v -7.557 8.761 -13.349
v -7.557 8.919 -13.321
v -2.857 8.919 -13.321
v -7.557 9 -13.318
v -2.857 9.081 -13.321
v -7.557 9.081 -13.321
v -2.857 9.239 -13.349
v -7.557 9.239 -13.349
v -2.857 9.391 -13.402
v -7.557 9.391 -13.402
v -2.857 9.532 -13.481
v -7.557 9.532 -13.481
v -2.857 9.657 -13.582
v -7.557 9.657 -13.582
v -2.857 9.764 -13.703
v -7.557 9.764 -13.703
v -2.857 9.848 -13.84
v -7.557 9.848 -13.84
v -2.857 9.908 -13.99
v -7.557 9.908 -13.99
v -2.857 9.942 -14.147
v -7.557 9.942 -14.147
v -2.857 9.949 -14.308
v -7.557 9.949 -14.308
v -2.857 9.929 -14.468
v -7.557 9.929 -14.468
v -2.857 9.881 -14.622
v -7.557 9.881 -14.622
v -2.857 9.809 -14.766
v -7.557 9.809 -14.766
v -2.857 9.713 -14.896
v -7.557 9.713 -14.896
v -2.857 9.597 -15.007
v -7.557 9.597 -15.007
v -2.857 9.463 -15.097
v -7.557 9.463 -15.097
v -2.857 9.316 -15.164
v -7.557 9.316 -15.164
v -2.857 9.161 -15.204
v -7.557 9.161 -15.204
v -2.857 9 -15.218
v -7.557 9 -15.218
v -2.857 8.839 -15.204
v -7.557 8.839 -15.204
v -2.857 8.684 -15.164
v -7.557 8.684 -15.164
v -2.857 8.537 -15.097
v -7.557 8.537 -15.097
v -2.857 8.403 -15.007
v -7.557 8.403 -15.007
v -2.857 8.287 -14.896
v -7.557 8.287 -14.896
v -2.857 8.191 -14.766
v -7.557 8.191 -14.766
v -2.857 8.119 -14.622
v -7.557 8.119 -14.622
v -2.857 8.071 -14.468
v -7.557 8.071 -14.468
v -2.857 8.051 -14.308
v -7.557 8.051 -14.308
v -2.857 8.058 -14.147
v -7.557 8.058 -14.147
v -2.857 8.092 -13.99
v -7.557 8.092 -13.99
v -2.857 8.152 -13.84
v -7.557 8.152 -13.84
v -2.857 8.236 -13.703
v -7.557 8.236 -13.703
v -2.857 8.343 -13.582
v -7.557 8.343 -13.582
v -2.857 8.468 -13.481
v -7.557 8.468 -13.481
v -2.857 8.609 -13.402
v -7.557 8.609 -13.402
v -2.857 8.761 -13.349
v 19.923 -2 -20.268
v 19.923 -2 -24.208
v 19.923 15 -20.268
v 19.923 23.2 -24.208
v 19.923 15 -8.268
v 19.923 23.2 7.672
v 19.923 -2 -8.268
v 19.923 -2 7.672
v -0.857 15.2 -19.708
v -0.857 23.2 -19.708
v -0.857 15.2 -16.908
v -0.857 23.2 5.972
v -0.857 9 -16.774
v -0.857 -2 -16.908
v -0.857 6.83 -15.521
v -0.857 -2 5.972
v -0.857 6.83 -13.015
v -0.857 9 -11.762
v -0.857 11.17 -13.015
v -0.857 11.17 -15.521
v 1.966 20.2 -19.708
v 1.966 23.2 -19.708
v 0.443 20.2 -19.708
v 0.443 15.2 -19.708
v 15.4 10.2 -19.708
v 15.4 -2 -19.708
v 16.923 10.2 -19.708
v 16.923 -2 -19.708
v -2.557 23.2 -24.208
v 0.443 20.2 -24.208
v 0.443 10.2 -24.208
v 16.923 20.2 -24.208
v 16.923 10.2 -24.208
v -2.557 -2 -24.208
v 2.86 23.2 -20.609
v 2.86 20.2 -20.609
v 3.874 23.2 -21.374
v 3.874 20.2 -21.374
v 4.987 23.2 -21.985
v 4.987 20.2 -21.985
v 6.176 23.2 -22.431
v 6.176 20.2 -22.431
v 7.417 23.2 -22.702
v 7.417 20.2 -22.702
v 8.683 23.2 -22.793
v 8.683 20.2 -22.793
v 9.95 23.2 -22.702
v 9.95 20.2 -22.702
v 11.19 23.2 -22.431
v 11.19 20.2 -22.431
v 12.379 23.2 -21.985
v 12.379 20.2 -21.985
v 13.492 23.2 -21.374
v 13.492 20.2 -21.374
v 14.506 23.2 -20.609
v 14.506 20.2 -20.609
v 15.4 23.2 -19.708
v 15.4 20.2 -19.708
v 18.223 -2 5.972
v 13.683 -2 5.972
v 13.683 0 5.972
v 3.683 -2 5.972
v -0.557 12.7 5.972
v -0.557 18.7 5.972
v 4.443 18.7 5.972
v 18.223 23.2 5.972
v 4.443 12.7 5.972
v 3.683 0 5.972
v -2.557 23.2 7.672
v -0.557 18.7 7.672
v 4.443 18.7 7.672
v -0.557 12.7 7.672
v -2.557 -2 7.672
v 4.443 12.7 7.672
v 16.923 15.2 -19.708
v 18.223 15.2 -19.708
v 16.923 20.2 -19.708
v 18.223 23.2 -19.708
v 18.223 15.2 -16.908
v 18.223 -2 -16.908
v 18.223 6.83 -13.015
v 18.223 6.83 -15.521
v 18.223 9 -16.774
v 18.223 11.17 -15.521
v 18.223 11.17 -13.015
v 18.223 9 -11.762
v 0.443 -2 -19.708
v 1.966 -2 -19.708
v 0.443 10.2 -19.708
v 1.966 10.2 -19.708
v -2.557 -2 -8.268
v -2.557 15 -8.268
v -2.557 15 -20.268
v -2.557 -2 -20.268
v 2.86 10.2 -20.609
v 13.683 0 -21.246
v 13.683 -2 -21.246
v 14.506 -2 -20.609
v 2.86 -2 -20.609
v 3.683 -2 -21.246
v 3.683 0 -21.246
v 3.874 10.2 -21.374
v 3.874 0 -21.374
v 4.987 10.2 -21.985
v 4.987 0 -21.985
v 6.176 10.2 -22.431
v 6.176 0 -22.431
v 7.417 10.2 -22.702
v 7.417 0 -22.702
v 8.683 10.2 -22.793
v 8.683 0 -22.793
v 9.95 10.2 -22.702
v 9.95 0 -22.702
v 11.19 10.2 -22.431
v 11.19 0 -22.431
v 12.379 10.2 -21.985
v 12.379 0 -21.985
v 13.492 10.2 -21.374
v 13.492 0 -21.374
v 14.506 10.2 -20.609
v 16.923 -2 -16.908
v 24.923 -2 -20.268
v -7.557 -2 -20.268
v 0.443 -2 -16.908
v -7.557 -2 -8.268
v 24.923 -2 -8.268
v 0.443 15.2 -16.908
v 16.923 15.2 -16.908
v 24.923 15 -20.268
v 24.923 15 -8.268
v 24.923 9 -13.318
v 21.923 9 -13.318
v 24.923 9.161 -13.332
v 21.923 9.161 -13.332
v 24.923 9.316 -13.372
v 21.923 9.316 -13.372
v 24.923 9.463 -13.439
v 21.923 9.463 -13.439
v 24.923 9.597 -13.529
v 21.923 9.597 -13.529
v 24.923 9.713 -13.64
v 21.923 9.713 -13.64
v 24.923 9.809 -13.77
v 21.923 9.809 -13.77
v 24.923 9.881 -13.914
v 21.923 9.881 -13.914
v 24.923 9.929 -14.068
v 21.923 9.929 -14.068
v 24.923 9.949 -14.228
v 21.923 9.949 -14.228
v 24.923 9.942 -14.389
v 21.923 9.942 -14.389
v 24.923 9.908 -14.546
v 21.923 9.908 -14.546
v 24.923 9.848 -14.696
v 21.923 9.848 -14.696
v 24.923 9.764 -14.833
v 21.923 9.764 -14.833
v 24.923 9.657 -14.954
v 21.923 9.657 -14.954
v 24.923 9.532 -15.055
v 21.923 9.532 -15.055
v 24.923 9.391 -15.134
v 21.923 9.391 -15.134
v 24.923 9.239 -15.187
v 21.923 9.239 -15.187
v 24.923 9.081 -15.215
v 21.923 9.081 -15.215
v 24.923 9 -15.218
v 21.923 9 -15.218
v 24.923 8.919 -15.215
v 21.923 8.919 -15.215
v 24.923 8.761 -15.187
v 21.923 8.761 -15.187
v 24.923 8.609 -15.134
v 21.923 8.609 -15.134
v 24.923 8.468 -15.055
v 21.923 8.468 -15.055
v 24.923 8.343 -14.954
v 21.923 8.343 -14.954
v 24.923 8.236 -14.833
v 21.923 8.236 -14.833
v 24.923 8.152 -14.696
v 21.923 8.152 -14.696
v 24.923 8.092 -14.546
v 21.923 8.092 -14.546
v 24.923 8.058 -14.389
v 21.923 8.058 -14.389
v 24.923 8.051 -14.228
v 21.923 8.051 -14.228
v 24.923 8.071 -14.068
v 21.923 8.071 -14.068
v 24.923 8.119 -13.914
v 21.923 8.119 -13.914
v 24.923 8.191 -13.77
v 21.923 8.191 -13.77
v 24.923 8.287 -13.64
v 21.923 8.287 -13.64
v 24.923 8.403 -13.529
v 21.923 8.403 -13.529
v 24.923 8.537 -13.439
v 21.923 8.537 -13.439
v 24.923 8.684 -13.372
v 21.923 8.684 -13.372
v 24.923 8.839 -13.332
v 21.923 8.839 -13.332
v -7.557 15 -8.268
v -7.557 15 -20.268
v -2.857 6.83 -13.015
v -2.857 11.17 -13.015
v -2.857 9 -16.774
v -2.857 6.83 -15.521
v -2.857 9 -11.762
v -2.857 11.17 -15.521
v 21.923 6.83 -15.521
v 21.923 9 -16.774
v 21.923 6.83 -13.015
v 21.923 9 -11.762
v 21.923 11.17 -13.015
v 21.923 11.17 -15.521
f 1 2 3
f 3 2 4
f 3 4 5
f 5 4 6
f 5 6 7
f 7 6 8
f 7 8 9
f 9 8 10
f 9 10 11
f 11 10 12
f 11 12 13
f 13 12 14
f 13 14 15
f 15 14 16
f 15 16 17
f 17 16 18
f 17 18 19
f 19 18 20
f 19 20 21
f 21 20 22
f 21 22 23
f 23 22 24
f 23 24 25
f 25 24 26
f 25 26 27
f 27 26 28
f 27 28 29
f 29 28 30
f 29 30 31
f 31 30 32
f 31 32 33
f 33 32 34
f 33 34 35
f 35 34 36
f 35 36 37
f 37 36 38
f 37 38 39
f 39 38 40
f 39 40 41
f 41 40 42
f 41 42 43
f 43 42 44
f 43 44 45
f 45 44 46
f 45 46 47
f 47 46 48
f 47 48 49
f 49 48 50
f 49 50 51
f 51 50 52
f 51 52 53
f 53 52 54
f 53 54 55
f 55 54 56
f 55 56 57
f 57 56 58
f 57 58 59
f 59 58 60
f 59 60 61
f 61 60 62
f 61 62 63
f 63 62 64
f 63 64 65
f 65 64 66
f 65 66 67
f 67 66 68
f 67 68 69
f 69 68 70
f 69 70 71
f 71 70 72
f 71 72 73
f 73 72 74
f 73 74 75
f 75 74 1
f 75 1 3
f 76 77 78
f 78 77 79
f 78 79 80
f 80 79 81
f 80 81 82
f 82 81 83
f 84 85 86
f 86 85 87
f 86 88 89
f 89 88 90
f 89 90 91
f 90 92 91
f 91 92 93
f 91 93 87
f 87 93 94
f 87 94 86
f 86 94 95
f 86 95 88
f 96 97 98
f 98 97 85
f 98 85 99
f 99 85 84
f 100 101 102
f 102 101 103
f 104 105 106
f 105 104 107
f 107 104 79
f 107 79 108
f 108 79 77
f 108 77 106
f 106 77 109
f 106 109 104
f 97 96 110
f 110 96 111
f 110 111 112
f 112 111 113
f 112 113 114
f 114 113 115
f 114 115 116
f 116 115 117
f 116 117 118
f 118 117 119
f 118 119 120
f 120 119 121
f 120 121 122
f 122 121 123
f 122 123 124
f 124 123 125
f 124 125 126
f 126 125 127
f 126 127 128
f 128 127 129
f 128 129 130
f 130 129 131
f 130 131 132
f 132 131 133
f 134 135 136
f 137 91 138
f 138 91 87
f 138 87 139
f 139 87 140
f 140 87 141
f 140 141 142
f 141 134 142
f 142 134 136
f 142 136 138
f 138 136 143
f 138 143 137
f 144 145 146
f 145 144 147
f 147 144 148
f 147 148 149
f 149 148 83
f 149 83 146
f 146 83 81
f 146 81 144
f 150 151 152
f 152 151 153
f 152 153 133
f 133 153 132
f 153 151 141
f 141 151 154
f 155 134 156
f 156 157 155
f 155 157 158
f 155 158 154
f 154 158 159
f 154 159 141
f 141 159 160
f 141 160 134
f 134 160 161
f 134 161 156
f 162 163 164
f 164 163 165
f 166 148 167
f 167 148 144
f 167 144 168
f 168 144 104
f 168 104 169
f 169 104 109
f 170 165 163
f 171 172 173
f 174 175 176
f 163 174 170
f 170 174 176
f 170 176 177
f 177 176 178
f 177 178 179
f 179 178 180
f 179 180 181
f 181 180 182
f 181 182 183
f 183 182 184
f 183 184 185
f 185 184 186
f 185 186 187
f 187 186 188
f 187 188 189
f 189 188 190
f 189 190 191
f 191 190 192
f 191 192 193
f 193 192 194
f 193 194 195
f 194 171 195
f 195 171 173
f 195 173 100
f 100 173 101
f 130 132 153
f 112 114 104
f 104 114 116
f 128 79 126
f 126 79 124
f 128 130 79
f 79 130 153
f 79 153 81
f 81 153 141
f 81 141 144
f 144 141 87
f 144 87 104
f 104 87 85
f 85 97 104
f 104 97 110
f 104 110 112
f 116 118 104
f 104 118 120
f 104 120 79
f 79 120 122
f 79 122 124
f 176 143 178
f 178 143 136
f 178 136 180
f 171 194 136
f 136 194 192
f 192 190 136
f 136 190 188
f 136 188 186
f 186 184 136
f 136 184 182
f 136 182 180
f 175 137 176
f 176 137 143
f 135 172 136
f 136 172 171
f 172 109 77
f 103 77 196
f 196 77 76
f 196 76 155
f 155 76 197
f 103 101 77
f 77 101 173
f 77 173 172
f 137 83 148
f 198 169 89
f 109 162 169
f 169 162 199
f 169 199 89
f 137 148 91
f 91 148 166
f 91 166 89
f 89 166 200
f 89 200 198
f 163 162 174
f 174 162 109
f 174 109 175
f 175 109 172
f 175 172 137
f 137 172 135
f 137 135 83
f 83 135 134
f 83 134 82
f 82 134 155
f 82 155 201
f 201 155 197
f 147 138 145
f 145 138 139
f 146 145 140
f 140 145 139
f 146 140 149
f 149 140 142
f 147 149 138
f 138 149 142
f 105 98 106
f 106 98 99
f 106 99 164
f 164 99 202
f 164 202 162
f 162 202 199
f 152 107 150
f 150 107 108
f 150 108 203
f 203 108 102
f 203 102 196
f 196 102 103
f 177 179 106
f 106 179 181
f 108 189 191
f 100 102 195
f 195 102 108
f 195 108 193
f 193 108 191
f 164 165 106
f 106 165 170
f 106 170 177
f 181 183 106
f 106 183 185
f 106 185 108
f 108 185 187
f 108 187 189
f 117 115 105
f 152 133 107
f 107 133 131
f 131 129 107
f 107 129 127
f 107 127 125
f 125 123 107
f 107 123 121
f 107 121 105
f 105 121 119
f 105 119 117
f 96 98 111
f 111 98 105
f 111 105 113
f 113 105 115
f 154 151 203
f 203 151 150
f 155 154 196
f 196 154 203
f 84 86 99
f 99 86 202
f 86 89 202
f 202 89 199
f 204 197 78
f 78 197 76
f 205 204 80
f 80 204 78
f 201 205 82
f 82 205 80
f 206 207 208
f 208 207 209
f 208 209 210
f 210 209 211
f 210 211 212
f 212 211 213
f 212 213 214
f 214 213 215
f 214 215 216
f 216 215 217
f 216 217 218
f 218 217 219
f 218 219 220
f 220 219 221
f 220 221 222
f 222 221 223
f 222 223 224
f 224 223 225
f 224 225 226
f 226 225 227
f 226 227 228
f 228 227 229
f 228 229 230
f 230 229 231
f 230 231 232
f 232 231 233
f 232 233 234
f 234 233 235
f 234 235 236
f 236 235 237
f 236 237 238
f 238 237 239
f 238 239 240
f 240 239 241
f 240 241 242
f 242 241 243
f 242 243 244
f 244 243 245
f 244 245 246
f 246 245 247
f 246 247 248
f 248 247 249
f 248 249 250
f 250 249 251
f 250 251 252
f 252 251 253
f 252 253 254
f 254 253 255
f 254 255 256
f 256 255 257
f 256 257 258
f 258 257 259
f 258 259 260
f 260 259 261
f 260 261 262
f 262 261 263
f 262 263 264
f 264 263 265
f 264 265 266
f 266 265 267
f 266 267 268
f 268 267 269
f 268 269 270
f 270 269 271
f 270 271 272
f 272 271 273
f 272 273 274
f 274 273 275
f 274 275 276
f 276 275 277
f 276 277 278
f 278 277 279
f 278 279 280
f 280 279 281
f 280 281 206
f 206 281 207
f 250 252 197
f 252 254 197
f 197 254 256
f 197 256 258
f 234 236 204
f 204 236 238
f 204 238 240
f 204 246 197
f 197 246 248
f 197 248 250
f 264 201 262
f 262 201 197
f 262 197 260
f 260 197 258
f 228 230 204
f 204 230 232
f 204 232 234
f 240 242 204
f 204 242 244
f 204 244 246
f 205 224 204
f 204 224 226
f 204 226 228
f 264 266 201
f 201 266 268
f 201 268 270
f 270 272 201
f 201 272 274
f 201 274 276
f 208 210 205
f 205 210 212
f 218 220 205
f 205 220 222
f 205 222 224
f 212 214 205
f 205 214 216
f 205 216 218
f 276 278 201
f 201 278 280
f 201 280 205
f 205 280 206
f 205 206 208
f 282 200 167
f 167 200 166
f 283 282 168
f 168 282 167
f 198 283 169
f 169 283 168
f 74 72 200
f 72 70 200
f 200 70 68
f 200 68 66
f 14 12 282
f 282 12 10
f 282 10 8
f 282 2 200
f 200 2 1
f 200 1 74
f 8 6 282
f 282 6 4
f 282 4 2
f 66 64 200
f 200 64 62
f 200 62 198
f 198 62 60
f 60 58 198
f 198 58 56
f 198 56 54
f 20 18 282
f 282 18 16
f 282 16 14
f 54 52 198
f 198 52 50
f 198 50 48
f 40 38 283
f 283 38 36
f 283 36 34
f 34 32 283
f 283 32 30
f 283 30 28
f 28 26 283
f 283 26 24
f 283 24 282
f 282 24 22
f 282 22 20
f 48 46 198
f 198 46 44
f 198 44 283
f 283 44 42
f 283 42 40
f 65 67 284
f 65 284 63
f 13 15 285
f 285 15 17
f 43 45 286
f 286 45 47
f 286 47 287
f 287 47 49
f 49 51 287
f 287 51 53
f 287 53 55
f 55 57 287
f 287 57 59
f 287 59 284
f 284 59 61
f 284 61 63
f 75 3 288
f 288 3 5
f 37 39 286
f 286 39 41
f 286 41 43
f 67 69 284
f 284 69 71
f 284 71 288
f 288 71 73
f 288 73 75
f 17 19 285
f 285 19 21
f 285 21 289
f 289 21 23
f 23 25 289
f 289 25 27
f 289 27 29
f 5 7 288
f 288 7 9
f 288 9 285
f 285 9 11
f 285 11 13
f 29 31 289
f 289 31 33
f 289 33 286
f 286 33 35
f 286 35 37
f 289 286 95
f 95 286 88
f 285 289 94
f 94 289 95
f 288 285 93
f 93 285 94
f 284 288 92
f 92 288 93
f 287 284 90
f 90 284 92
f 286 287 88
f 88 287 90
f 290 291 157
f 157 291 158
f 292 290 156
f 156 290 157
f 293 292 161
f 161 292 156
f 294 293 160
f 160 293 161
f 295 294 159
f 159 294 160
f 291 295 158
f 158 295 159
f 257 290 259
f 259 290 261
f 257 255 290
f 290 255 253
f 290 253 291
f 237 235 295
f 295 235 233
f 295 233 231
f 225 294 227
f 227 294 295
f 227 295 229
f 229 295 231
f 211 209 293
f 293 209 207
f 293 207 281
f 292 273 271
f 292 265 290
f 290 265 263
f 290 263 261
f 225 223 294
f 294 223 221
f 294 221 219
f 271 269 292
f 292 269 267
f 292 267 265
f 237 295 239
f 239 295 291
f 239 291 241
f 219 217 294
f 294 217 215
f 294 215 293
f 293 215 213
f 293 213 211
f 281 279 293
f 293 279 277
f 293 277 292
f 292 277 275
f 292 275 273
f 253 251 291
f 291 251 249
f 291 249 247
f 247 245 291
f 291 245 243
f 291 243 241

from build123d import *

# Parameters (mm, degrees)
BOSS_EXTRUDE1_DEPTH = 23.2
BOSS_EXTRUDE2_START = 2
SKETCH2_W           = 5
SKETCH2_H           = 1.7
BOSS_EXTRUDE2_DEPTH = 2
SKETCH3_W           = 5
SKETCH3_H           = 6
CUT_EXTRUDE1_DEPTH  = 2
SKETCH4_W           = 16.48
SKETCH4_H           = 10
CUT_EXTRUDE2_DEPTH  = 7
SKETCH6_W           = 2.8
SKETCH6_H           = 17.2
BOSS_EXTRUDE4_DEPTH = 1.3
SKETCH8_W           = 2.8
SKETCH8_H           = 17.2
BOSS_EXTRUDE5_DEPTH = 1.3
SKETCH12_W          = 12
SKETCH12_H          = 17
SKETCH12_R          = 0.95
BOSS_EXTRUDE6_DEPTH = 5
BOSS_EXTRUDE7_START = 5
SKETCH13_W          = 12
SKETCH13_H          = 17
SKETCH13_R          = 0.95
BOSS_EXTRUDE7_DEPTH = 5
CUT_EXTRUDE3_START  = -22.78
CUT_EXTRUDE3_DEPTH  = 24.78


with BuildPart() as part:
    # Sketch1 → Boss-Extrude1 (new body)
    with BuildSketch(Plane(origin=(0, 0, 0), x_dir=(1, 0, 0), z_dir=(0, 1, 0))):
        Polygon((18.223177083, -5.972057292), (-0.856822917, -5.972057292), (-0.856822917, -7.672057292), (19.923177083, -7.672057292), (19.923177083, 24.207942708), (18.223177083, 24.207942708), (18.223177083, 19.707942708), align=None)
        with BuildLine():
            Line((-0.856822917, -7.672057292), (-0.856822917, -5.972057292))
            Line((-0.856822917, -5.972057292), (-0.856822917, 19.707942708))
            Line((-0.856822917, 19.707942708), (1.966174404, 19.707942708))
            ThreePointArc((1.966174404, 19.707942708), (8.683177083, 22.792942708), (15.400179763, 19.707942708))
            Line((15.400179763, 19.707942708), (18.223177083, 19.707942708))
            Line((18.223177083, 19.707942708), (18.223177083, 24.207942708))
            Line((18.223177083, 24.207942708), (-2.556822917, 24.207942708))
            Line((-2.556822917, 24.207942708), (-2.556822917, -7.672057292))
            Line((-2.556822917, -7.672057292), (-0.856822917, -7.672057292))
        make_face()
    extrude(amount=BOSS_EXTRUDE1_DEPTH)

    # Sketch2 → Boss-Extrude2 (add)
    with BuildSketch(Plane.XZ.offset(BOSS_EXTRUDE2_START)):
        with BuildLine():
            Line((3.683177083, 5.972057292), (3.683177083, 7.672057292))
            Line((3.683177083, 7.672057292), (-2.556822917, 7.672057292))
            Line((-2.556822917, 7.672057292), (-2.556822917, -24.207942708))
            Line((-2.556822917, -24.207942708), (3.683177083, -24.207942708))
            Line((3.683177083, -24.207942708), (3.683177083, -21.246227391))
            ThreePointArc((3.683177083, -21.246227391), (2.774402431, -20.533199118), (1.966174404, -19.707942708))
            Line((1.966174404, -19.707942708), (-0.856822917, -19.707942708))
            Line((-0.856822917, -19.707942708), (-0.856822917, 5.972057292))
            Line((-0.856822917, 5.972057292), (3.683177083, 5.972057292))
        make_face()
        with BuildLine():
            Line((8.683177083, -24.207942708), (8.683177083, -22.792942708))
            ThreePointArc((8.683177083, -22.792942708), (6.066293045, -22.397431046), (3.683177083, -21.246227391))
            Line((3.683177083, -21.246227391), (3.683177083, -24.207942708))
            Line((3.683177083, -24.207942708), (8.683177083, -24.207942708))
        make_face()
        with BuildLine():
            ThreePointArc((13.683177083, -21.246227391), (11.300061121, -22.397431046), (8.683177083, -22.792942708))
            Line((8.683177083, -22.792942708), (8.683177083, -24.207942708))
            Line((8.683177083, -24.207942708), (13.683177083, -24.207942708))
            Line((13.683177083, -24.207942708), (13.683177083, -21.246227391))
        make_face()
        with BuildLine():
            Line((19.923177083, 7.672057292), (13.683177083, 7.672057292))
            Line((13.683177083, 7.672057292), (13.683177083, 5.972057292))
            Line((13.683177083, 5.972057292), (18.223177083, 5.972057292))
            Line((18.223177083, 5.972057292), (18.223177083, -19.707942708))
            Line((18.223177083, -19.707942708), (15.400179763, -19.707942708))
            ThreePointArc((15.400179763, -19.707942708), (14.591951736, -20.533199118), (13.683177083, -21.246227391))
            Line((13.683177083, -21.246227391), (13.683177083, -24.207942708))
            Line((13.683177083, -24.207942708), (19.923177083, -24.207942708))
            Line((19.923177083, -24.207942708), (19.923177083, 7.672057292))
        make_face()
        with Locations((11.183177083, 6.822057292)):
            Rectangle(SKETCH2_W, SKETCH2_H)
        with Locations((6.183177083, 6.822057292)):
            Rectangle(SKETCH2_W, SKETCH2_H)
        with BuildLine():
            Line((13.683177083, 5.972057292), (8.683177083, 5.972057292))
            Line((8.683177083, 5.972057292), (8.683177083, -22.792942708))
            ThreePointArc((8.683177083, -22.792942708), (11.300061121, -22.397431046), (13.683177083, -21.246227391))
            Line((13.683177083, -21.246227391), (13.683177083, 5.972057292))
        make_face()
        with BuildLine():
            Line((8.683177083, -22.792942708), (8.683177083, 5.972057292))
            Line((8.683177083, 5.972057292), (3.683177083, 5.972057292))
            Line((3.683177083, 5.972057292), (3.683177083, -21.246227391))
            ThreePointArc((3.683177083, -21.246227391), (6.066293045, -22.397431046), (8.683177083, -22.792942708))
        make_face()
    extrude(amount=-BOSS_EXTRUDE2_DEPTH)

    # Sketch3 → Cut-Extrude1 (cut)
    with BuildSketch(Plane.XY.offset(7.672057292)):
        with Locations((1.943177083, 15.7)):
            Rectangle(SKETCH3_W, SKETCH3_H)
    extrude(amount=-CUT_EXTRUDE1_DEPTH, mode=Mode.SUBTRACT)

    # Sketch4 → Cut-Extrude2 (cut)
    with BuildSketch(Plane(origin=(0, 0, -24.207942708), x_dir=(-1, 0, 0), z_dir=(0, 0, -1))):
        with Locations((-8.683177083, 15.2)):
            Rectangle(SKETCH4_W, SKETCH4_H)
    extrude(amount=-CUT_EXTRUDE2_DEPTH, mode=Mode.SUBTRACT)

    # Sketch6 → Boss-Extrude4 (add)
    with BuildSketch(Plane.ZY.offset(-18.223177083)):
        with Locations((-18.307942708, 6.6)):
            Rectangle(SKETCH6_W, SKETCH6_H)
    extrude(amount=BOSS_EXTRUDE4_DEPTH)

    # Sketch8 → Boss-Extrude5 (add)
    with BuildSketch(Plane(origin=(-0.856822917, 0, 0), x_dir=(0, 0, -1), z_dir=(1, 0, 0))):
        with Locations((18.307942708, 6.6)):
            Rectangle(SKETCH8_W, SKETCH8_H)
    extrude(amount=BOSS_EXTRUDE5_DEPTH)

    # Sketch12 → Boss-Extrude6 (add)
    with BuildSketch(Plane(origin=(19.923177083, 0, 0), x_dir=(0, 0, -1), z_dir=(1, 0, 0))):
        with Locations((14.267942708, 6.5)):
            Rectangle(SKETCH12_W, SKETCH12_H)
        with Locations((14.267942708, 9)):
            Circle(SKETCH12_R, mode=Mode.SUBTRACT)
    extrude(amount=BOSS_EXTRUDE6_DEPTH)

    # Sketch13 → Boss-Extrude7 (add)
    with BuildSketch(Plane.ZY.offset(2.556822917).offset(BOSS_EXTRUDE7_START)):
        with Locations((-14.267942708, 6.5)):
            Rectangle(SKETCH13_W, SKETCH13_H)
        with Locations(Location((-14.267942708, 9, 0), (0, 0, 180))):
            Circle(SKETCH13_R, mode=Mode.SUBTRACT)
    extrude(amount=-BOSS_EXTRUDE7_DEPTH)

    # Sketch15 → Cut-Extrude3 (cut)
    with BuildSketch(Plane(origin=(19.923177083, 0, 0), x_dir=(0, 0, -1), z_dir=(1, 0, 0)).offset(CUT_EXTRUDE3_START)):
        Polygon((16.773642877, 9), (15.520792792, 11.17), (13.015092624, 11.17), (11.76224254, 9), (13.015092624, 6.83), (15.520792792, 6.83), align=None)
    extrude(amount=CUT_EXTRUDE3_DEPTH, mode=Mode.SUBTRACT)


solid = part.part
